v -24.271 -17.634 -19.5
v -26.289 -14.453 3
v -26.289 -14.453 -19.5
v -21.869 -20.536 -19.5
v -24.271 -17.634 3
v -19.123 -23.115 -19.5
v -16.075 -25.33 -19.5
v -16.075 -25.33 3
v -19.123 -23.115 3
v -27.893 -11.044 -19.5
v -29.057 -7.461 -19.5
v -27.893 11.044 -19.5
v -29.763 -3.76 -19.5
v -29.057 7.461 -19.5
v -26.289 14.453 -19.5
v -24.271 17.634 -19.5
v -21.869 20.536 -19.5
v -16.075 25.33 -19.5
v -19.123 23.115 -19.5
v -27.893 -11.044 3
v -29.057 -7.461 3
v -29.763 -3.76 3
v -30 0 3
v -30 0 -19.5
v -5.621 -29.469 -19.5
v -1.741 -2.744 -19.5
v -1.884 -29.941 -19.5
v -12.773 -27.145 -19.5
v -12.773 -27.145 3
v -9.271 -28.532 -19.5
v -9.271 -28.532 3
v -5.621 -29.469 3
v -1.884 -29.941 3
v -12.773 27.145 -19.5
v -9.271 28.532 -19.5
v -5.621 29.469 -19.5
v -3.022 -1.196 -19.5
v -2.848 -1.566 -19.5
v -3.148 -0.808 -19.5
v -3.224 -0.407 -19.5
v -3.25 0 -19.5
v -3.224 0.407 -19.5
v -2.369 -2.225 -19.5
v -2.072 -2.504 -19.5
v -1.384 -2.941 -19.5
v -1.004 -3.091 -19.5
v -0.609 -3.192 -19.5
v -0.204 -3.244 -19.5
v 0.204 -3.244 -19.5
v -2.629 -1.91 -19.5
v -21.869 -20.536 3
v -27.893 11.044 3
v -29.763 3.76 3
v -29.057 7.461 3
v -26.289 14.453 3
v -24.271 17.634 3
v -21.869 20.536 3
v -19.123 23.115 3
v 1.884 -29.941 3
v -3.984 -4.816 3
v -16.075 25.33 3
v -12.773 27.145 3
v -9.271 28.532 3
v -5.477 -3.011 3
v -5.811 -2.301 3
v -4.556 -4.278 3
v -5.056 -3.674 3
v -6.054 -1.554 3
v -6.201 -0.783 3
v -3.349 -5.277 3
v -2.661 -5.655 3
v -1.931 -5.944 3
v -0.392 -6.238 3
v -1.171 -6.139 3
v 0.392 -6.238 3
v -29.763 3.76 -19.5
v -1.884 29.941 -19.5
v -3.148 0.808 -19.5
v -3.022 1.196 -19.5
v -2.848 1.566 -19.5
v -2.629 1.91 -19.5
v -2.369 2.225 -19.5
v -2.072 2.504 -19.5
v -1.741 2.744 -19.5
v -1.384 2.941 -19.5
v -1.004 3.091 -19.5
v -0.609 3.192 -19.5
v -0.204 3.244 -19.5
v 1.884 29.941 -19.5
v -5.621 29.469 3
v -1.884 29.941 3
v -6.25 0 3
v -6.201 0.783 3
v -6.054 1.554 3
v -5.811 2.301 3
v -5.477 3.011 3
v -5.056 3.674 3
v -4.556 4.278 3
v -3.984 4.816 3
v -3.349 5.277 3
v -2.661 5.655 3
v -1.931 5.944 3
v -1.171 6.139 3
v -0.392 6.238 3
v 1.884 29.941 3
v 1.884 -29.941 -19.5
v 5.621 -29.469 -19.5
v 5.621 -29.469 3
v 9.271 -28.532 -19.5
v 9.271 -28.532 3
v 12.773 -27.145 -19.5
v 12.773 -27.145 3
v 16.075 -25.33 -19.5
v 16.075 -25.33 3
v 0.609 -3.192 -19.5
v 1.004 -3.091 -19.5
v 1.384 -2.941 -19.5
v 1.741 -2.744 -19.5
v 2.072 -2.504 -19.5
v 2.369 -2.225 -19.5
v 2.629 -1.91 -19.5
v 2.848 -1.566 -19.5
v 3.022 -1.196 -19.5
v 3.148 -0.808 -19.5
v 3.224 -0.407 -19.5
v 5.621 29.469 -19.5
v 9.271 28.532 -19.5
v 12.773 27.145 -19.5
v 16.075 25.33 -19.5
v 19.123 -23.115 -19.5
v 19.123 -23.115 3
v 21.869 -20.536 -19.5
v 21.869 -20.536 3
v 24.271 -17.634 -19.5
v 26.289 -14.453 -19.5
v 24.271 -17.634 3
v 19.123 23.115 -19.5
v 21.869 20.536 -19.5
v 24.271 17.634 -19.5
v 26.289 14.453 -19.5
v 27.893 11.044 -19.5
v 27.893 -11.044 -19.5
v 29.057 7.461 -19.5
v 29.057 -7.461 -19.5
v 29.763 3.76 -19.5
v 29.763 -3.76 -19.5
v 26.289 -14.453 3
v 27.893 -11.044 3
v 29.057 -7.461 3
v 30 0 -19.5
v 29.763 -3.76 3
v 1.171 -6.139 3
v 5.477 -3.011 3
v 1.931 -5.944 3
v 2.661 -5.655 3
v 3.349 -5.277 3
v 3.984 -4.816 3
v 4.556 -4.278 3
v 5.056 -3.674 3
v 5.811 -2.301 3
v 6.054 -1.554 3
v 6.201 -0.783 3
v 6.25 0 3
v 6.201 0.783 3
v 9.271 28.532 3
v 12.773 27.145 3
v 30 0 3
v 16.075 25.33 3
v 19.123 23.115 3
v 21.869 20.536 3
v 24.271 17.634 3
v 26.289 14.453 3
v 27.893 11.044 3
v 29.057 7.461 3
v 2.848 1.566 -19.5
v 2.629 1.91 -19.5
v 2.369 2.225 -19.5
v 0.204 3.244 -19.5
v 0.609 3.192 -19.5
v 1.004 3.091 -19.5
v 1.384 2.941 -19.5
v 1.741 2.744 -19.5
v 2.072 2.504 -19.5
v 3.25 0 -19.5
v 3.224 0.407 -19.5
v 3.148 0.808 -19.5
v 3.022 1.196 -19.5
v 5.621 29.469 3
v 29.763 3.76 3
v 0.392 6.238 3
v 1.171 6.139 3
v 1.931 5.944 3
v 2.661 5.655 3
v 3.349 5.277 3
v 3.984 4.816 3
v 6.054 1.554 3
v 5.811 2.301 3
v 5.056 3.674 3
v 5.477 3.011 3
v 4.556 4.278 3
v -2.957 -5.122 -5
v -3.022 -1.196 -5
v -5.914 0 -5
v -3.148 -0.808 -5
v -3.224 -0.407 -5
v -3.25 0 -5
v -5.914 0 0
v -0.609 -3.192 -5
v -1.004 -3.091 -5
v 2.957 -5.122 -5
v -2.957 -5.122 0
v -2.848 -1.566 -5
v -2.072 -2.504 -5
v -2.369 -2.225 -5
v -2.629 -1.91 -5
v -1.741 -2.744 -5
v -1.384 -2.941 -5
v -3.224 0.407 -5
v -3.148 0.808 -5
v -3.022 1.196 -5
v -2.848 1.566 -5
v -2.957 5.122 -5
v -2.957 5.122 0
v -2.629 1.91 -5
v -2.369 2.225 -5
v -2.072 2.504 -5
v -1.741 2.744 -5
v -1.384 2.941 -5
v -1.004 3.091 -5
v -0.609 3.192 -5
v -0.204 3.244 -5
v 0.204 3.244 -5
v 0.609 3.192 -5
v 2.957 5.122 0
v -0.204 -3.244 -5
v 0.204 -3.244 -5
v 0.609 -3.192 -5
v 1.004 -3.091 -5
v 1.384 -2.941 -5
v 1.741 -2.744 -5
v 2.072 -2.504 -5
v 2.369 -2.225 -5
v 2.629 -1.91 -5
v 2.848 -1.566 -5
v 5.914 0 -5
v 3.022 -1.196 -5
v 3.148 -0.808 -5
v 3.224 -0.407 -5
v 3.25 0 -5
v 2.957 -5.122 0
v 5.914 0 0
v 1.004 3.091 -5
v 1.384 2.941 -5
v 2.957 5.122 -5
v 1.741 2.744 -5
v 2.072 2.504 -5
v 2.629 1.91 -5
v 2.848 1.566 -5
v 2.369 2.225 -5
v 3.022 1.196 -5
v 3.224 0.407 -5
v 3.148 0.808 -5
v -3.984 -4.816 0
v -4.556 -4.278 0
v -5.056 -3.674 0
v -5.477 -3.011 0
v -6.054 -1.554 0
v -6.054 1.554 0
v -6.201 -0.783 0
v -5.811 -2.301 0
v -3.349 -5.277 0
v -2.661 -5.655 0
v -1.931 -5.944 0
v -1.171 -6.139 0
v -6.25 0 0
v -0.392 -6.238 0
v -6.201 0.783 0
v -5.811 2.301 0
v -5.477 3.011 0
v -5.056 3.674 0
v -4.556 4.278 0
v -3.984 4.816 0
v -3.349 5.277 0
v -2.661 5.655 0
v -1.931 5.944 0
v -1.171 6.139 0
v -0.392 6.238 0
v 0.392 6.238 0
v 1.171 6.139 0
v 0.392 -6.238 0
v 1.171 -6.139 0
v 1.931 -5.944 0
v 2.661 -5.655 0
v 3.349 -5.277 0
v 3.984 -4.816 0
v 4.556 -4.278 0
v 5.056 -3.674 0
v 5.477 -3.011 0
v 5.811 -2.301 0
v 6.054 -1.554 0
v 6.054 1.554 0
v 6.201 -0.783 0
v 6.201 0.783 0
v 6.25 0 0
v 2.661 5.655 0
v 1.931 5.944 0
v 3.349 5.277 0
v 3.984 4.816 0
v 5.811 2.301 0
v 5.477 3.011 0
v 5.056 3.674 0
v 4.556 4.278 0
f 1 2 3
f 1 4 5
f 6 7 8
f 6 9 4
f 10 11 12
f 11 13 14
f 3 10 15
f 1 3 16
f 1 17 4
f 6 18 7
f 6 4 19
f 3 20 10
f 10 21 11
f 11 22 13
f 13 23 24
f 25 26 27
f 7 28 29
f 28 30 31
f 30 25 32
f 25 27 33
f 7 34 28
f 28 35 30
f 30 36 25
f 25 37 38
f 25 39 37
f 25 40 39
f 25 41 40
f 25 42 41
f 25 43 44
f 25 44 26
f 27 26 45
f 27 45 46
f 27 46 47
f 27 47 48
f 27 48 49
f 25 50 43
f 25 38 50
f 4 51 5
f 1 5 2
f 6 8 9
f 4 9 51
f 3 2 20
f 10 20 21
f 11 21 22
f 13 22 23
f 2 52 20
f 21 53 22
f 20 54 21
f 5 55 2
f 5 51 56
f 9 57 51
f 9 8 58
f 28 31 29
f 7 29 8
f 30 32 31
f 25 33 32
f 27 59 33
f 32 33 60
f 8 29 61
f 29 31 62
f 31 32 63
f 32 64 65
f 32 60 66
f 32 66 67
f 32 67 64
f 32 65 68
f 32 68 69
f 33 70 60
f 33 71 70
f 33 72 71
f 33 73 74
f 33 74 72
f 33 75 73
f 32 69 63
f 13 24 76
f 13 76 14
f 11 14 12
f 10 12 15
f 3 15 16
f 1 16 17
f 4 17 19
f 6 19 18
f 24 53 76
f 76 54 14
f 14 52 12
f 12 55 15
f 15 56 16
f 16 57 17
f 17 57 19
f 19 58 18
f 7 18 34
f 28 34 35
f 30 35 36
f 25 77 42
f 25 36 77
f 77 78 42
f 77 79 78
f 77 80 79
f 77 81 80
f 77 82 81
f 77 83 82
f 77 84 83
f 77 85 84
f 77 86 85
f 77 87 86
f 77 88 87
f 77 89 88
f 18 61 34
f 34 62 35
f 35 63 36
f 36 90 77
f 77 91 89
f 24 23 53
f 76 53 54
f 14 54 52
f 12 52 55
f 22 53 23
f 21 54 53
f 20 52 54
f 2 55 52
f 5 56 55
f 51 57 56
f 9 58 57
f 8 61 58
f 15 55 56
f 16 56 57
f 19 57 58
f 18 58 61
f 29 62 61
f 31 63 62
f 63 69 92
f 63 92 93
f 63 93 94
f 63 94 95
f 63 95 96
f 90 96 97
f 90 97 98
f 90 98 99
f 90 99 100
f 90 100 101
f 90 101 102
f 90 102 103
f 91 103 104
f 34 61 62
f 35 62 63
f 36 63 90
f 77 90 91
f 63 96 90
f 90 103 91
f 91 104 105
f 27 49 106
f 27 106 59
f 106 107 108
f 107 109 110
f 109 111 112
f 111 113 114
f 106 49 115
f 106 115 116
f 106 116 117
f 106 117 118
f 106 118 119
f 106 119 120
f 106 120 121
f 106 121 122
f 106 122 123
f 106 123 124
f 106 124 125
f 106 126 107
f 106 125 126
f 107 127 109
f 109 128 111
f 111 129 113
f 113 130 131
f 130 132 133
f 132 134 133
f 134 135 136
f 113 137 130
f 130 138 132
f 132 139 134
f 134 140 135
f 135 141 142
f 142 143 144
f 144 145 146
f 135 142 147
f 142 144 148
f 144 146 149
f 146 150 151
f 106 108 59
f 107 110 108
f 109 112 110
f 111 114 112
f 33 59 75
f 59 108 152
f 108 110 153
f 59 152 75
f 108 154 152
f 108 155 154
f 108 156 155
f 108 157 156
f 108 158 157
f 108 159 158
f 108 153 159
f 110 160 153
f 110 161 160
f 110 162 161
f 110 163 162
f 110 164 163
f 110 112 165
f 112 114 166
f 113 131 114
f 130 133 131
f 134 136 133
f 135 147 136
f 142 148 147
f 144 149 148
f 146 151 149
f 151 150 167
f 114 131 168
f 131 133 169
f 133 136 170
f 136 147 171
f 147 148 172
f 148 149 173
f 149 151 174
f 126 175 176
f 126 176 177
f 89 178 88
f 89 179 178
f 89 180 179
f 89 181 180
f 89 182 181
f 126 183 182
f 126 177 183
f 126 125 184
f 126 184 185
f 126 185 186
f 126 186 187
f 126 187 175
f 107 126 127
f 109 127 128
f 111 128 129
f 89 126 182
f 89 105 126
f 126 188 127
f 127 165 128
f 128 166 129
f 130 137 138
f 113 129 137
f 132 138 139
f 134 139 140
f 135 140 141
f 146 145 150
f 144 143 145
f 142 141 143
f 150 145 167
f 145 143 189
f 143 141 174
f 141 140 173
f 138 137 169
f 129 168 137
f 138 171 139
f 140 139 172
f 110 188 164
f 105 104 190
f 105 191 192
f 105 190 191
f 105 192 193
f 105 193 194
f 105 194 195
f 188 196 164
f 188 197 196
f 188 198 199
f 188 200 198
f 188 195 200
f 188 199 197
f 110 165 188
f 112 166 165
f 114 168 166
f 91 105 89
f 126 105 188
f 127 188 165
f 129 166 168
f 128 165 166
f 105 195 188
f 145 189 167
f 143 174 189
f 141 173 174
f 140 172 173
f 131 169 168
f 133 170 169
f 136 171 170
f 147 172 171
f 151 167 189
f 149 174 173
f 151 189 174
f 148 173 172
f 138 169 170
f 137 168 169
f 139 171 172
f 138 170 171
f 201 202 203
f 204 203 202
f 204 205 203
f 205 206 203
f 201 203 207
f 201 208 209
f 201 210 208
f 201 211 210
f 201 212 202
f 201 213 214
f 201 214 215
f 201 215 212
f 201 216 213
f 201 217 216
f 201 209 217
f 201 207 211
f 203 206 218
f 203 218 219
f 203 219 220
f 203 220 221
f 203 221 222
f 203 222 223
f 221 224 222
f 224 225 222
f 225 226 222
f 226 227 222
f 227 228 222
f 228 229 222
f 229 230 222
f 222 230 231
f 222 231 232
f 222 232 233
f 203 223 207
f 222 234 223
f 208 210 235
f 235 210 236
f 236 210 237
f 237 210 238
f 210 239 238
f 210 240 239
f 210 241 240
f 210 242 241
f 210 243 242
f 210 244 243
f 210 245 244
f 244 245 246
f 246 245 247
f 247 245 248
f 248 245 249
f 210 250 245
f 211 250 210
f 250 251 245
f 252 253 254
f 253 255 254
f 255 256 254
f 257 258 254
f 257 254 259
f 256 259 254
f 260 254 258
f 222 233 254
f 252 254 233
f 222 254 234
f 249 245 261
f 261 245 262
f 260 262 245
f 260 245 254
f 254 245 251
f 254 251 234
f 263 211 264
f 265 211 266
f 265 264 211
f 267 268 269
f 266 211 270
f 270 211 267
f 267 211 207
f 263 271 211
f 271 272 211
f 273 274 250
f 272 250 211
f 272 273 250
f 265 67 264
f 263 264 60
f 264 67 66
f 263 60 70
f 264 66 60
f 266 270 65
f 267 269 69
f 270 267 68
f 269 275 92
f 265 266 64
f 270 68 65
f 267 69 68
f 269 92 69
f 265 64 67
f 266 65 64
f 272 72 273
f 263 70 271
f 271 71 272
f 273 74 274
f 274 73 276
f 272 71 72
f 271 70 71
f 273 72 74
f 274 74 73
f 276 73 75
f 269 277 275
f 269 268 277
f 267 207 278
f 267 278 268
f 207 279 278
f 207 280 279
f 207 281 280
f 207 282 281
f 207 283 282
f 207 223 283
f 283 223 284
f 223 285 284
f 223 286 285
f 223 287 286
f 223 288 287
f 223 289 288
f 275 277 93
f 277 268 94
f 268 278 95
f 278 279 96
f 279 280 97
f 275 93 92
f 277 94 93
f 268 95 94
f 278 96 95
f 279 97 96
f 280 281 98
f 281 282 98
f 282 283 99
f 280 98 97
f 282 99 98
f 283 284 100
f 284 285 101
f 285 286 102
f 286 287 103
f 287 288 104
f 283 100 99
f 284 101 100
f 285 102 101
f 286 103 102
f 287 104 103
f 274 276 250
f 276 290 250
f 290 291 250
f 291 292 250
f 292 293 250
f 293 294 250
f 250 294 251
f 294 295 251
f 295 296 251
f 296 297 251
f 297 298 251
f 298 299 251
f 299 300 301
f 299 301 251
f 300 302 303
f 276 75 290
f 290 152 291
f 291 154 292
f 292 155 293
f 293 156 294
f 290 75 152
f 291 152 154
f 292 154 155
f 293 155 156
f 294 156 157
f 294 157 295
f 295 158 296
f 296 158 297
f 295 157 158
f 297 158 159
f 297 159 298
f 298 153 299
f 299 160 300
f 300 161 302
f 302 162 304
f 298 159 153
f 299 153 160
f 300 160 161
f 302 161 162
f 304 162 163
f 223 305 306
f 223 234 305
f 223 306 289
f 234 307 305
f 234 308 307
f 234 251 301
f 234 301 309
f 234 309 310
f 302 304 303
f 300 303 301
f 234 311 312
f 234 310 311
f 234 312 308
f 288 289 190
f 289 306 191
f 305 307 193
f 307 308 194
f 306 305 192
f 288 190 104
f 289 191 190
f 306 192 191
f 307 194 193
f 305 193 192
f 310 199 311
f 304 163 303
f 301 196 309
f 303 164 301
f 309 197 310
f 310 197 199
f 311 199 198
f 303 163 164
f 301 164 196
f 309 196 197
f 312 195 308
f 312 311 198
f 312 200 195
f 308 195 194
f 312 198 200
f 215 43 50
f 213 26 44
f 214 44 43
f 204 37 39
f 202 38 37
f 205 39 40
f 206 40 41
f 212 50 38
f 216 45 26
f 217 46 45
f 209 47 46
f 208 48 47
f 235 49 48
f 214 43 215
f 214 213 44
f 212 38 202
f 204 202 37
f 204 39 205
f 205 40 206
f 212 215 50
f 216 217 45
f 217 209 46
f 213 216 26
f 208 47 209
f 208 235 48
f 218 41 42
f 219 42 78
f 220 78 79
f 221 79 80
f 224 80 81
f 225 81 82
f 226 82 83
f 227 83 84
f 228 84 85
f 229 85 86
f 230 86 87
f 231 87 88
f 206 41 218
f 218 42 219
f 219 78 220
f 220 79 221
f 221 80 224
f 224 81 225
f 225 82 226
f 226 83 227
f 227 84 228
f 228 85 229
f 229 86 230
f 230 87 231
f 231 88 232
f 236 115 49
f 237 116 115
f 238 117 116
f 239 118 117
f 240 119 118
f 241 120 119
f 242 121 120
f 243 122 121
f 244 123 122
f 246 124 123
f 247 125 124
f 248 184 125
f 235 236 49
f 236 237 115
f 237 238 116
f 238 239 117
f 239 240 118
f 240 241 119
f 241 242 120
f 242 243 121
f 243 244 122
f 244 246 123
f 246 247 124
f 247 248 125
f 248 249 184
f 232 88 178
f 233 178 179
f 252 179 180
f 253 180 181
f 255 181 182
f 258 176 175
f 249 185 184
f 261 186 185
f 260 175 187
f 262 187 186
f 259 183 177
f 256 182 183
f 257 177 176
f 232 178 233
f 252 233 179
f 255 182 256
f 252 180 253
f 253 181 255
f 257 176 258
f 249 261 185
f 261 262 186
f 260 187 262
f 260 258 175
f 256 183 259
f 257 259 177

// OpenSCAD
$fn = 50;

difference() {
	union() {
		translate(v = [0, 0, -19.5]) {
			cylinder(h = 22.5, r = 30.0);
		}
		#translate(v = [0, 0, -21.0]) {
			cylinder(h = 21, r = 2.875);
		}
	}
	union() {
		translate(v = [0, 0, 0]) {
			rotate(a = [0, 0, 0]) {
				difference() {
					union() {
						translate(v = [0, 0, -5]) {
							linear_extrude(height = 5) {
								polygon(points = [[5.914249999999999, 0.0], [2.957125, 5.1218907443321156], [-2.9571249999999982, 5.1218907443321156], [-5.914249999999999, 7.242867331857232e-16], [-2.9571250000000022, -5.121890744332115], [2.9571249999999956, -5.121890744332118]]);
							}
						}
					}
					union();
				}
			}
		}
		#cylinder(h = 3, r = 6.25);
		#translate(v = [0, 0, -100.0]) {
			cylinder(h = 200, r = 3.25);
		}
	}
}
